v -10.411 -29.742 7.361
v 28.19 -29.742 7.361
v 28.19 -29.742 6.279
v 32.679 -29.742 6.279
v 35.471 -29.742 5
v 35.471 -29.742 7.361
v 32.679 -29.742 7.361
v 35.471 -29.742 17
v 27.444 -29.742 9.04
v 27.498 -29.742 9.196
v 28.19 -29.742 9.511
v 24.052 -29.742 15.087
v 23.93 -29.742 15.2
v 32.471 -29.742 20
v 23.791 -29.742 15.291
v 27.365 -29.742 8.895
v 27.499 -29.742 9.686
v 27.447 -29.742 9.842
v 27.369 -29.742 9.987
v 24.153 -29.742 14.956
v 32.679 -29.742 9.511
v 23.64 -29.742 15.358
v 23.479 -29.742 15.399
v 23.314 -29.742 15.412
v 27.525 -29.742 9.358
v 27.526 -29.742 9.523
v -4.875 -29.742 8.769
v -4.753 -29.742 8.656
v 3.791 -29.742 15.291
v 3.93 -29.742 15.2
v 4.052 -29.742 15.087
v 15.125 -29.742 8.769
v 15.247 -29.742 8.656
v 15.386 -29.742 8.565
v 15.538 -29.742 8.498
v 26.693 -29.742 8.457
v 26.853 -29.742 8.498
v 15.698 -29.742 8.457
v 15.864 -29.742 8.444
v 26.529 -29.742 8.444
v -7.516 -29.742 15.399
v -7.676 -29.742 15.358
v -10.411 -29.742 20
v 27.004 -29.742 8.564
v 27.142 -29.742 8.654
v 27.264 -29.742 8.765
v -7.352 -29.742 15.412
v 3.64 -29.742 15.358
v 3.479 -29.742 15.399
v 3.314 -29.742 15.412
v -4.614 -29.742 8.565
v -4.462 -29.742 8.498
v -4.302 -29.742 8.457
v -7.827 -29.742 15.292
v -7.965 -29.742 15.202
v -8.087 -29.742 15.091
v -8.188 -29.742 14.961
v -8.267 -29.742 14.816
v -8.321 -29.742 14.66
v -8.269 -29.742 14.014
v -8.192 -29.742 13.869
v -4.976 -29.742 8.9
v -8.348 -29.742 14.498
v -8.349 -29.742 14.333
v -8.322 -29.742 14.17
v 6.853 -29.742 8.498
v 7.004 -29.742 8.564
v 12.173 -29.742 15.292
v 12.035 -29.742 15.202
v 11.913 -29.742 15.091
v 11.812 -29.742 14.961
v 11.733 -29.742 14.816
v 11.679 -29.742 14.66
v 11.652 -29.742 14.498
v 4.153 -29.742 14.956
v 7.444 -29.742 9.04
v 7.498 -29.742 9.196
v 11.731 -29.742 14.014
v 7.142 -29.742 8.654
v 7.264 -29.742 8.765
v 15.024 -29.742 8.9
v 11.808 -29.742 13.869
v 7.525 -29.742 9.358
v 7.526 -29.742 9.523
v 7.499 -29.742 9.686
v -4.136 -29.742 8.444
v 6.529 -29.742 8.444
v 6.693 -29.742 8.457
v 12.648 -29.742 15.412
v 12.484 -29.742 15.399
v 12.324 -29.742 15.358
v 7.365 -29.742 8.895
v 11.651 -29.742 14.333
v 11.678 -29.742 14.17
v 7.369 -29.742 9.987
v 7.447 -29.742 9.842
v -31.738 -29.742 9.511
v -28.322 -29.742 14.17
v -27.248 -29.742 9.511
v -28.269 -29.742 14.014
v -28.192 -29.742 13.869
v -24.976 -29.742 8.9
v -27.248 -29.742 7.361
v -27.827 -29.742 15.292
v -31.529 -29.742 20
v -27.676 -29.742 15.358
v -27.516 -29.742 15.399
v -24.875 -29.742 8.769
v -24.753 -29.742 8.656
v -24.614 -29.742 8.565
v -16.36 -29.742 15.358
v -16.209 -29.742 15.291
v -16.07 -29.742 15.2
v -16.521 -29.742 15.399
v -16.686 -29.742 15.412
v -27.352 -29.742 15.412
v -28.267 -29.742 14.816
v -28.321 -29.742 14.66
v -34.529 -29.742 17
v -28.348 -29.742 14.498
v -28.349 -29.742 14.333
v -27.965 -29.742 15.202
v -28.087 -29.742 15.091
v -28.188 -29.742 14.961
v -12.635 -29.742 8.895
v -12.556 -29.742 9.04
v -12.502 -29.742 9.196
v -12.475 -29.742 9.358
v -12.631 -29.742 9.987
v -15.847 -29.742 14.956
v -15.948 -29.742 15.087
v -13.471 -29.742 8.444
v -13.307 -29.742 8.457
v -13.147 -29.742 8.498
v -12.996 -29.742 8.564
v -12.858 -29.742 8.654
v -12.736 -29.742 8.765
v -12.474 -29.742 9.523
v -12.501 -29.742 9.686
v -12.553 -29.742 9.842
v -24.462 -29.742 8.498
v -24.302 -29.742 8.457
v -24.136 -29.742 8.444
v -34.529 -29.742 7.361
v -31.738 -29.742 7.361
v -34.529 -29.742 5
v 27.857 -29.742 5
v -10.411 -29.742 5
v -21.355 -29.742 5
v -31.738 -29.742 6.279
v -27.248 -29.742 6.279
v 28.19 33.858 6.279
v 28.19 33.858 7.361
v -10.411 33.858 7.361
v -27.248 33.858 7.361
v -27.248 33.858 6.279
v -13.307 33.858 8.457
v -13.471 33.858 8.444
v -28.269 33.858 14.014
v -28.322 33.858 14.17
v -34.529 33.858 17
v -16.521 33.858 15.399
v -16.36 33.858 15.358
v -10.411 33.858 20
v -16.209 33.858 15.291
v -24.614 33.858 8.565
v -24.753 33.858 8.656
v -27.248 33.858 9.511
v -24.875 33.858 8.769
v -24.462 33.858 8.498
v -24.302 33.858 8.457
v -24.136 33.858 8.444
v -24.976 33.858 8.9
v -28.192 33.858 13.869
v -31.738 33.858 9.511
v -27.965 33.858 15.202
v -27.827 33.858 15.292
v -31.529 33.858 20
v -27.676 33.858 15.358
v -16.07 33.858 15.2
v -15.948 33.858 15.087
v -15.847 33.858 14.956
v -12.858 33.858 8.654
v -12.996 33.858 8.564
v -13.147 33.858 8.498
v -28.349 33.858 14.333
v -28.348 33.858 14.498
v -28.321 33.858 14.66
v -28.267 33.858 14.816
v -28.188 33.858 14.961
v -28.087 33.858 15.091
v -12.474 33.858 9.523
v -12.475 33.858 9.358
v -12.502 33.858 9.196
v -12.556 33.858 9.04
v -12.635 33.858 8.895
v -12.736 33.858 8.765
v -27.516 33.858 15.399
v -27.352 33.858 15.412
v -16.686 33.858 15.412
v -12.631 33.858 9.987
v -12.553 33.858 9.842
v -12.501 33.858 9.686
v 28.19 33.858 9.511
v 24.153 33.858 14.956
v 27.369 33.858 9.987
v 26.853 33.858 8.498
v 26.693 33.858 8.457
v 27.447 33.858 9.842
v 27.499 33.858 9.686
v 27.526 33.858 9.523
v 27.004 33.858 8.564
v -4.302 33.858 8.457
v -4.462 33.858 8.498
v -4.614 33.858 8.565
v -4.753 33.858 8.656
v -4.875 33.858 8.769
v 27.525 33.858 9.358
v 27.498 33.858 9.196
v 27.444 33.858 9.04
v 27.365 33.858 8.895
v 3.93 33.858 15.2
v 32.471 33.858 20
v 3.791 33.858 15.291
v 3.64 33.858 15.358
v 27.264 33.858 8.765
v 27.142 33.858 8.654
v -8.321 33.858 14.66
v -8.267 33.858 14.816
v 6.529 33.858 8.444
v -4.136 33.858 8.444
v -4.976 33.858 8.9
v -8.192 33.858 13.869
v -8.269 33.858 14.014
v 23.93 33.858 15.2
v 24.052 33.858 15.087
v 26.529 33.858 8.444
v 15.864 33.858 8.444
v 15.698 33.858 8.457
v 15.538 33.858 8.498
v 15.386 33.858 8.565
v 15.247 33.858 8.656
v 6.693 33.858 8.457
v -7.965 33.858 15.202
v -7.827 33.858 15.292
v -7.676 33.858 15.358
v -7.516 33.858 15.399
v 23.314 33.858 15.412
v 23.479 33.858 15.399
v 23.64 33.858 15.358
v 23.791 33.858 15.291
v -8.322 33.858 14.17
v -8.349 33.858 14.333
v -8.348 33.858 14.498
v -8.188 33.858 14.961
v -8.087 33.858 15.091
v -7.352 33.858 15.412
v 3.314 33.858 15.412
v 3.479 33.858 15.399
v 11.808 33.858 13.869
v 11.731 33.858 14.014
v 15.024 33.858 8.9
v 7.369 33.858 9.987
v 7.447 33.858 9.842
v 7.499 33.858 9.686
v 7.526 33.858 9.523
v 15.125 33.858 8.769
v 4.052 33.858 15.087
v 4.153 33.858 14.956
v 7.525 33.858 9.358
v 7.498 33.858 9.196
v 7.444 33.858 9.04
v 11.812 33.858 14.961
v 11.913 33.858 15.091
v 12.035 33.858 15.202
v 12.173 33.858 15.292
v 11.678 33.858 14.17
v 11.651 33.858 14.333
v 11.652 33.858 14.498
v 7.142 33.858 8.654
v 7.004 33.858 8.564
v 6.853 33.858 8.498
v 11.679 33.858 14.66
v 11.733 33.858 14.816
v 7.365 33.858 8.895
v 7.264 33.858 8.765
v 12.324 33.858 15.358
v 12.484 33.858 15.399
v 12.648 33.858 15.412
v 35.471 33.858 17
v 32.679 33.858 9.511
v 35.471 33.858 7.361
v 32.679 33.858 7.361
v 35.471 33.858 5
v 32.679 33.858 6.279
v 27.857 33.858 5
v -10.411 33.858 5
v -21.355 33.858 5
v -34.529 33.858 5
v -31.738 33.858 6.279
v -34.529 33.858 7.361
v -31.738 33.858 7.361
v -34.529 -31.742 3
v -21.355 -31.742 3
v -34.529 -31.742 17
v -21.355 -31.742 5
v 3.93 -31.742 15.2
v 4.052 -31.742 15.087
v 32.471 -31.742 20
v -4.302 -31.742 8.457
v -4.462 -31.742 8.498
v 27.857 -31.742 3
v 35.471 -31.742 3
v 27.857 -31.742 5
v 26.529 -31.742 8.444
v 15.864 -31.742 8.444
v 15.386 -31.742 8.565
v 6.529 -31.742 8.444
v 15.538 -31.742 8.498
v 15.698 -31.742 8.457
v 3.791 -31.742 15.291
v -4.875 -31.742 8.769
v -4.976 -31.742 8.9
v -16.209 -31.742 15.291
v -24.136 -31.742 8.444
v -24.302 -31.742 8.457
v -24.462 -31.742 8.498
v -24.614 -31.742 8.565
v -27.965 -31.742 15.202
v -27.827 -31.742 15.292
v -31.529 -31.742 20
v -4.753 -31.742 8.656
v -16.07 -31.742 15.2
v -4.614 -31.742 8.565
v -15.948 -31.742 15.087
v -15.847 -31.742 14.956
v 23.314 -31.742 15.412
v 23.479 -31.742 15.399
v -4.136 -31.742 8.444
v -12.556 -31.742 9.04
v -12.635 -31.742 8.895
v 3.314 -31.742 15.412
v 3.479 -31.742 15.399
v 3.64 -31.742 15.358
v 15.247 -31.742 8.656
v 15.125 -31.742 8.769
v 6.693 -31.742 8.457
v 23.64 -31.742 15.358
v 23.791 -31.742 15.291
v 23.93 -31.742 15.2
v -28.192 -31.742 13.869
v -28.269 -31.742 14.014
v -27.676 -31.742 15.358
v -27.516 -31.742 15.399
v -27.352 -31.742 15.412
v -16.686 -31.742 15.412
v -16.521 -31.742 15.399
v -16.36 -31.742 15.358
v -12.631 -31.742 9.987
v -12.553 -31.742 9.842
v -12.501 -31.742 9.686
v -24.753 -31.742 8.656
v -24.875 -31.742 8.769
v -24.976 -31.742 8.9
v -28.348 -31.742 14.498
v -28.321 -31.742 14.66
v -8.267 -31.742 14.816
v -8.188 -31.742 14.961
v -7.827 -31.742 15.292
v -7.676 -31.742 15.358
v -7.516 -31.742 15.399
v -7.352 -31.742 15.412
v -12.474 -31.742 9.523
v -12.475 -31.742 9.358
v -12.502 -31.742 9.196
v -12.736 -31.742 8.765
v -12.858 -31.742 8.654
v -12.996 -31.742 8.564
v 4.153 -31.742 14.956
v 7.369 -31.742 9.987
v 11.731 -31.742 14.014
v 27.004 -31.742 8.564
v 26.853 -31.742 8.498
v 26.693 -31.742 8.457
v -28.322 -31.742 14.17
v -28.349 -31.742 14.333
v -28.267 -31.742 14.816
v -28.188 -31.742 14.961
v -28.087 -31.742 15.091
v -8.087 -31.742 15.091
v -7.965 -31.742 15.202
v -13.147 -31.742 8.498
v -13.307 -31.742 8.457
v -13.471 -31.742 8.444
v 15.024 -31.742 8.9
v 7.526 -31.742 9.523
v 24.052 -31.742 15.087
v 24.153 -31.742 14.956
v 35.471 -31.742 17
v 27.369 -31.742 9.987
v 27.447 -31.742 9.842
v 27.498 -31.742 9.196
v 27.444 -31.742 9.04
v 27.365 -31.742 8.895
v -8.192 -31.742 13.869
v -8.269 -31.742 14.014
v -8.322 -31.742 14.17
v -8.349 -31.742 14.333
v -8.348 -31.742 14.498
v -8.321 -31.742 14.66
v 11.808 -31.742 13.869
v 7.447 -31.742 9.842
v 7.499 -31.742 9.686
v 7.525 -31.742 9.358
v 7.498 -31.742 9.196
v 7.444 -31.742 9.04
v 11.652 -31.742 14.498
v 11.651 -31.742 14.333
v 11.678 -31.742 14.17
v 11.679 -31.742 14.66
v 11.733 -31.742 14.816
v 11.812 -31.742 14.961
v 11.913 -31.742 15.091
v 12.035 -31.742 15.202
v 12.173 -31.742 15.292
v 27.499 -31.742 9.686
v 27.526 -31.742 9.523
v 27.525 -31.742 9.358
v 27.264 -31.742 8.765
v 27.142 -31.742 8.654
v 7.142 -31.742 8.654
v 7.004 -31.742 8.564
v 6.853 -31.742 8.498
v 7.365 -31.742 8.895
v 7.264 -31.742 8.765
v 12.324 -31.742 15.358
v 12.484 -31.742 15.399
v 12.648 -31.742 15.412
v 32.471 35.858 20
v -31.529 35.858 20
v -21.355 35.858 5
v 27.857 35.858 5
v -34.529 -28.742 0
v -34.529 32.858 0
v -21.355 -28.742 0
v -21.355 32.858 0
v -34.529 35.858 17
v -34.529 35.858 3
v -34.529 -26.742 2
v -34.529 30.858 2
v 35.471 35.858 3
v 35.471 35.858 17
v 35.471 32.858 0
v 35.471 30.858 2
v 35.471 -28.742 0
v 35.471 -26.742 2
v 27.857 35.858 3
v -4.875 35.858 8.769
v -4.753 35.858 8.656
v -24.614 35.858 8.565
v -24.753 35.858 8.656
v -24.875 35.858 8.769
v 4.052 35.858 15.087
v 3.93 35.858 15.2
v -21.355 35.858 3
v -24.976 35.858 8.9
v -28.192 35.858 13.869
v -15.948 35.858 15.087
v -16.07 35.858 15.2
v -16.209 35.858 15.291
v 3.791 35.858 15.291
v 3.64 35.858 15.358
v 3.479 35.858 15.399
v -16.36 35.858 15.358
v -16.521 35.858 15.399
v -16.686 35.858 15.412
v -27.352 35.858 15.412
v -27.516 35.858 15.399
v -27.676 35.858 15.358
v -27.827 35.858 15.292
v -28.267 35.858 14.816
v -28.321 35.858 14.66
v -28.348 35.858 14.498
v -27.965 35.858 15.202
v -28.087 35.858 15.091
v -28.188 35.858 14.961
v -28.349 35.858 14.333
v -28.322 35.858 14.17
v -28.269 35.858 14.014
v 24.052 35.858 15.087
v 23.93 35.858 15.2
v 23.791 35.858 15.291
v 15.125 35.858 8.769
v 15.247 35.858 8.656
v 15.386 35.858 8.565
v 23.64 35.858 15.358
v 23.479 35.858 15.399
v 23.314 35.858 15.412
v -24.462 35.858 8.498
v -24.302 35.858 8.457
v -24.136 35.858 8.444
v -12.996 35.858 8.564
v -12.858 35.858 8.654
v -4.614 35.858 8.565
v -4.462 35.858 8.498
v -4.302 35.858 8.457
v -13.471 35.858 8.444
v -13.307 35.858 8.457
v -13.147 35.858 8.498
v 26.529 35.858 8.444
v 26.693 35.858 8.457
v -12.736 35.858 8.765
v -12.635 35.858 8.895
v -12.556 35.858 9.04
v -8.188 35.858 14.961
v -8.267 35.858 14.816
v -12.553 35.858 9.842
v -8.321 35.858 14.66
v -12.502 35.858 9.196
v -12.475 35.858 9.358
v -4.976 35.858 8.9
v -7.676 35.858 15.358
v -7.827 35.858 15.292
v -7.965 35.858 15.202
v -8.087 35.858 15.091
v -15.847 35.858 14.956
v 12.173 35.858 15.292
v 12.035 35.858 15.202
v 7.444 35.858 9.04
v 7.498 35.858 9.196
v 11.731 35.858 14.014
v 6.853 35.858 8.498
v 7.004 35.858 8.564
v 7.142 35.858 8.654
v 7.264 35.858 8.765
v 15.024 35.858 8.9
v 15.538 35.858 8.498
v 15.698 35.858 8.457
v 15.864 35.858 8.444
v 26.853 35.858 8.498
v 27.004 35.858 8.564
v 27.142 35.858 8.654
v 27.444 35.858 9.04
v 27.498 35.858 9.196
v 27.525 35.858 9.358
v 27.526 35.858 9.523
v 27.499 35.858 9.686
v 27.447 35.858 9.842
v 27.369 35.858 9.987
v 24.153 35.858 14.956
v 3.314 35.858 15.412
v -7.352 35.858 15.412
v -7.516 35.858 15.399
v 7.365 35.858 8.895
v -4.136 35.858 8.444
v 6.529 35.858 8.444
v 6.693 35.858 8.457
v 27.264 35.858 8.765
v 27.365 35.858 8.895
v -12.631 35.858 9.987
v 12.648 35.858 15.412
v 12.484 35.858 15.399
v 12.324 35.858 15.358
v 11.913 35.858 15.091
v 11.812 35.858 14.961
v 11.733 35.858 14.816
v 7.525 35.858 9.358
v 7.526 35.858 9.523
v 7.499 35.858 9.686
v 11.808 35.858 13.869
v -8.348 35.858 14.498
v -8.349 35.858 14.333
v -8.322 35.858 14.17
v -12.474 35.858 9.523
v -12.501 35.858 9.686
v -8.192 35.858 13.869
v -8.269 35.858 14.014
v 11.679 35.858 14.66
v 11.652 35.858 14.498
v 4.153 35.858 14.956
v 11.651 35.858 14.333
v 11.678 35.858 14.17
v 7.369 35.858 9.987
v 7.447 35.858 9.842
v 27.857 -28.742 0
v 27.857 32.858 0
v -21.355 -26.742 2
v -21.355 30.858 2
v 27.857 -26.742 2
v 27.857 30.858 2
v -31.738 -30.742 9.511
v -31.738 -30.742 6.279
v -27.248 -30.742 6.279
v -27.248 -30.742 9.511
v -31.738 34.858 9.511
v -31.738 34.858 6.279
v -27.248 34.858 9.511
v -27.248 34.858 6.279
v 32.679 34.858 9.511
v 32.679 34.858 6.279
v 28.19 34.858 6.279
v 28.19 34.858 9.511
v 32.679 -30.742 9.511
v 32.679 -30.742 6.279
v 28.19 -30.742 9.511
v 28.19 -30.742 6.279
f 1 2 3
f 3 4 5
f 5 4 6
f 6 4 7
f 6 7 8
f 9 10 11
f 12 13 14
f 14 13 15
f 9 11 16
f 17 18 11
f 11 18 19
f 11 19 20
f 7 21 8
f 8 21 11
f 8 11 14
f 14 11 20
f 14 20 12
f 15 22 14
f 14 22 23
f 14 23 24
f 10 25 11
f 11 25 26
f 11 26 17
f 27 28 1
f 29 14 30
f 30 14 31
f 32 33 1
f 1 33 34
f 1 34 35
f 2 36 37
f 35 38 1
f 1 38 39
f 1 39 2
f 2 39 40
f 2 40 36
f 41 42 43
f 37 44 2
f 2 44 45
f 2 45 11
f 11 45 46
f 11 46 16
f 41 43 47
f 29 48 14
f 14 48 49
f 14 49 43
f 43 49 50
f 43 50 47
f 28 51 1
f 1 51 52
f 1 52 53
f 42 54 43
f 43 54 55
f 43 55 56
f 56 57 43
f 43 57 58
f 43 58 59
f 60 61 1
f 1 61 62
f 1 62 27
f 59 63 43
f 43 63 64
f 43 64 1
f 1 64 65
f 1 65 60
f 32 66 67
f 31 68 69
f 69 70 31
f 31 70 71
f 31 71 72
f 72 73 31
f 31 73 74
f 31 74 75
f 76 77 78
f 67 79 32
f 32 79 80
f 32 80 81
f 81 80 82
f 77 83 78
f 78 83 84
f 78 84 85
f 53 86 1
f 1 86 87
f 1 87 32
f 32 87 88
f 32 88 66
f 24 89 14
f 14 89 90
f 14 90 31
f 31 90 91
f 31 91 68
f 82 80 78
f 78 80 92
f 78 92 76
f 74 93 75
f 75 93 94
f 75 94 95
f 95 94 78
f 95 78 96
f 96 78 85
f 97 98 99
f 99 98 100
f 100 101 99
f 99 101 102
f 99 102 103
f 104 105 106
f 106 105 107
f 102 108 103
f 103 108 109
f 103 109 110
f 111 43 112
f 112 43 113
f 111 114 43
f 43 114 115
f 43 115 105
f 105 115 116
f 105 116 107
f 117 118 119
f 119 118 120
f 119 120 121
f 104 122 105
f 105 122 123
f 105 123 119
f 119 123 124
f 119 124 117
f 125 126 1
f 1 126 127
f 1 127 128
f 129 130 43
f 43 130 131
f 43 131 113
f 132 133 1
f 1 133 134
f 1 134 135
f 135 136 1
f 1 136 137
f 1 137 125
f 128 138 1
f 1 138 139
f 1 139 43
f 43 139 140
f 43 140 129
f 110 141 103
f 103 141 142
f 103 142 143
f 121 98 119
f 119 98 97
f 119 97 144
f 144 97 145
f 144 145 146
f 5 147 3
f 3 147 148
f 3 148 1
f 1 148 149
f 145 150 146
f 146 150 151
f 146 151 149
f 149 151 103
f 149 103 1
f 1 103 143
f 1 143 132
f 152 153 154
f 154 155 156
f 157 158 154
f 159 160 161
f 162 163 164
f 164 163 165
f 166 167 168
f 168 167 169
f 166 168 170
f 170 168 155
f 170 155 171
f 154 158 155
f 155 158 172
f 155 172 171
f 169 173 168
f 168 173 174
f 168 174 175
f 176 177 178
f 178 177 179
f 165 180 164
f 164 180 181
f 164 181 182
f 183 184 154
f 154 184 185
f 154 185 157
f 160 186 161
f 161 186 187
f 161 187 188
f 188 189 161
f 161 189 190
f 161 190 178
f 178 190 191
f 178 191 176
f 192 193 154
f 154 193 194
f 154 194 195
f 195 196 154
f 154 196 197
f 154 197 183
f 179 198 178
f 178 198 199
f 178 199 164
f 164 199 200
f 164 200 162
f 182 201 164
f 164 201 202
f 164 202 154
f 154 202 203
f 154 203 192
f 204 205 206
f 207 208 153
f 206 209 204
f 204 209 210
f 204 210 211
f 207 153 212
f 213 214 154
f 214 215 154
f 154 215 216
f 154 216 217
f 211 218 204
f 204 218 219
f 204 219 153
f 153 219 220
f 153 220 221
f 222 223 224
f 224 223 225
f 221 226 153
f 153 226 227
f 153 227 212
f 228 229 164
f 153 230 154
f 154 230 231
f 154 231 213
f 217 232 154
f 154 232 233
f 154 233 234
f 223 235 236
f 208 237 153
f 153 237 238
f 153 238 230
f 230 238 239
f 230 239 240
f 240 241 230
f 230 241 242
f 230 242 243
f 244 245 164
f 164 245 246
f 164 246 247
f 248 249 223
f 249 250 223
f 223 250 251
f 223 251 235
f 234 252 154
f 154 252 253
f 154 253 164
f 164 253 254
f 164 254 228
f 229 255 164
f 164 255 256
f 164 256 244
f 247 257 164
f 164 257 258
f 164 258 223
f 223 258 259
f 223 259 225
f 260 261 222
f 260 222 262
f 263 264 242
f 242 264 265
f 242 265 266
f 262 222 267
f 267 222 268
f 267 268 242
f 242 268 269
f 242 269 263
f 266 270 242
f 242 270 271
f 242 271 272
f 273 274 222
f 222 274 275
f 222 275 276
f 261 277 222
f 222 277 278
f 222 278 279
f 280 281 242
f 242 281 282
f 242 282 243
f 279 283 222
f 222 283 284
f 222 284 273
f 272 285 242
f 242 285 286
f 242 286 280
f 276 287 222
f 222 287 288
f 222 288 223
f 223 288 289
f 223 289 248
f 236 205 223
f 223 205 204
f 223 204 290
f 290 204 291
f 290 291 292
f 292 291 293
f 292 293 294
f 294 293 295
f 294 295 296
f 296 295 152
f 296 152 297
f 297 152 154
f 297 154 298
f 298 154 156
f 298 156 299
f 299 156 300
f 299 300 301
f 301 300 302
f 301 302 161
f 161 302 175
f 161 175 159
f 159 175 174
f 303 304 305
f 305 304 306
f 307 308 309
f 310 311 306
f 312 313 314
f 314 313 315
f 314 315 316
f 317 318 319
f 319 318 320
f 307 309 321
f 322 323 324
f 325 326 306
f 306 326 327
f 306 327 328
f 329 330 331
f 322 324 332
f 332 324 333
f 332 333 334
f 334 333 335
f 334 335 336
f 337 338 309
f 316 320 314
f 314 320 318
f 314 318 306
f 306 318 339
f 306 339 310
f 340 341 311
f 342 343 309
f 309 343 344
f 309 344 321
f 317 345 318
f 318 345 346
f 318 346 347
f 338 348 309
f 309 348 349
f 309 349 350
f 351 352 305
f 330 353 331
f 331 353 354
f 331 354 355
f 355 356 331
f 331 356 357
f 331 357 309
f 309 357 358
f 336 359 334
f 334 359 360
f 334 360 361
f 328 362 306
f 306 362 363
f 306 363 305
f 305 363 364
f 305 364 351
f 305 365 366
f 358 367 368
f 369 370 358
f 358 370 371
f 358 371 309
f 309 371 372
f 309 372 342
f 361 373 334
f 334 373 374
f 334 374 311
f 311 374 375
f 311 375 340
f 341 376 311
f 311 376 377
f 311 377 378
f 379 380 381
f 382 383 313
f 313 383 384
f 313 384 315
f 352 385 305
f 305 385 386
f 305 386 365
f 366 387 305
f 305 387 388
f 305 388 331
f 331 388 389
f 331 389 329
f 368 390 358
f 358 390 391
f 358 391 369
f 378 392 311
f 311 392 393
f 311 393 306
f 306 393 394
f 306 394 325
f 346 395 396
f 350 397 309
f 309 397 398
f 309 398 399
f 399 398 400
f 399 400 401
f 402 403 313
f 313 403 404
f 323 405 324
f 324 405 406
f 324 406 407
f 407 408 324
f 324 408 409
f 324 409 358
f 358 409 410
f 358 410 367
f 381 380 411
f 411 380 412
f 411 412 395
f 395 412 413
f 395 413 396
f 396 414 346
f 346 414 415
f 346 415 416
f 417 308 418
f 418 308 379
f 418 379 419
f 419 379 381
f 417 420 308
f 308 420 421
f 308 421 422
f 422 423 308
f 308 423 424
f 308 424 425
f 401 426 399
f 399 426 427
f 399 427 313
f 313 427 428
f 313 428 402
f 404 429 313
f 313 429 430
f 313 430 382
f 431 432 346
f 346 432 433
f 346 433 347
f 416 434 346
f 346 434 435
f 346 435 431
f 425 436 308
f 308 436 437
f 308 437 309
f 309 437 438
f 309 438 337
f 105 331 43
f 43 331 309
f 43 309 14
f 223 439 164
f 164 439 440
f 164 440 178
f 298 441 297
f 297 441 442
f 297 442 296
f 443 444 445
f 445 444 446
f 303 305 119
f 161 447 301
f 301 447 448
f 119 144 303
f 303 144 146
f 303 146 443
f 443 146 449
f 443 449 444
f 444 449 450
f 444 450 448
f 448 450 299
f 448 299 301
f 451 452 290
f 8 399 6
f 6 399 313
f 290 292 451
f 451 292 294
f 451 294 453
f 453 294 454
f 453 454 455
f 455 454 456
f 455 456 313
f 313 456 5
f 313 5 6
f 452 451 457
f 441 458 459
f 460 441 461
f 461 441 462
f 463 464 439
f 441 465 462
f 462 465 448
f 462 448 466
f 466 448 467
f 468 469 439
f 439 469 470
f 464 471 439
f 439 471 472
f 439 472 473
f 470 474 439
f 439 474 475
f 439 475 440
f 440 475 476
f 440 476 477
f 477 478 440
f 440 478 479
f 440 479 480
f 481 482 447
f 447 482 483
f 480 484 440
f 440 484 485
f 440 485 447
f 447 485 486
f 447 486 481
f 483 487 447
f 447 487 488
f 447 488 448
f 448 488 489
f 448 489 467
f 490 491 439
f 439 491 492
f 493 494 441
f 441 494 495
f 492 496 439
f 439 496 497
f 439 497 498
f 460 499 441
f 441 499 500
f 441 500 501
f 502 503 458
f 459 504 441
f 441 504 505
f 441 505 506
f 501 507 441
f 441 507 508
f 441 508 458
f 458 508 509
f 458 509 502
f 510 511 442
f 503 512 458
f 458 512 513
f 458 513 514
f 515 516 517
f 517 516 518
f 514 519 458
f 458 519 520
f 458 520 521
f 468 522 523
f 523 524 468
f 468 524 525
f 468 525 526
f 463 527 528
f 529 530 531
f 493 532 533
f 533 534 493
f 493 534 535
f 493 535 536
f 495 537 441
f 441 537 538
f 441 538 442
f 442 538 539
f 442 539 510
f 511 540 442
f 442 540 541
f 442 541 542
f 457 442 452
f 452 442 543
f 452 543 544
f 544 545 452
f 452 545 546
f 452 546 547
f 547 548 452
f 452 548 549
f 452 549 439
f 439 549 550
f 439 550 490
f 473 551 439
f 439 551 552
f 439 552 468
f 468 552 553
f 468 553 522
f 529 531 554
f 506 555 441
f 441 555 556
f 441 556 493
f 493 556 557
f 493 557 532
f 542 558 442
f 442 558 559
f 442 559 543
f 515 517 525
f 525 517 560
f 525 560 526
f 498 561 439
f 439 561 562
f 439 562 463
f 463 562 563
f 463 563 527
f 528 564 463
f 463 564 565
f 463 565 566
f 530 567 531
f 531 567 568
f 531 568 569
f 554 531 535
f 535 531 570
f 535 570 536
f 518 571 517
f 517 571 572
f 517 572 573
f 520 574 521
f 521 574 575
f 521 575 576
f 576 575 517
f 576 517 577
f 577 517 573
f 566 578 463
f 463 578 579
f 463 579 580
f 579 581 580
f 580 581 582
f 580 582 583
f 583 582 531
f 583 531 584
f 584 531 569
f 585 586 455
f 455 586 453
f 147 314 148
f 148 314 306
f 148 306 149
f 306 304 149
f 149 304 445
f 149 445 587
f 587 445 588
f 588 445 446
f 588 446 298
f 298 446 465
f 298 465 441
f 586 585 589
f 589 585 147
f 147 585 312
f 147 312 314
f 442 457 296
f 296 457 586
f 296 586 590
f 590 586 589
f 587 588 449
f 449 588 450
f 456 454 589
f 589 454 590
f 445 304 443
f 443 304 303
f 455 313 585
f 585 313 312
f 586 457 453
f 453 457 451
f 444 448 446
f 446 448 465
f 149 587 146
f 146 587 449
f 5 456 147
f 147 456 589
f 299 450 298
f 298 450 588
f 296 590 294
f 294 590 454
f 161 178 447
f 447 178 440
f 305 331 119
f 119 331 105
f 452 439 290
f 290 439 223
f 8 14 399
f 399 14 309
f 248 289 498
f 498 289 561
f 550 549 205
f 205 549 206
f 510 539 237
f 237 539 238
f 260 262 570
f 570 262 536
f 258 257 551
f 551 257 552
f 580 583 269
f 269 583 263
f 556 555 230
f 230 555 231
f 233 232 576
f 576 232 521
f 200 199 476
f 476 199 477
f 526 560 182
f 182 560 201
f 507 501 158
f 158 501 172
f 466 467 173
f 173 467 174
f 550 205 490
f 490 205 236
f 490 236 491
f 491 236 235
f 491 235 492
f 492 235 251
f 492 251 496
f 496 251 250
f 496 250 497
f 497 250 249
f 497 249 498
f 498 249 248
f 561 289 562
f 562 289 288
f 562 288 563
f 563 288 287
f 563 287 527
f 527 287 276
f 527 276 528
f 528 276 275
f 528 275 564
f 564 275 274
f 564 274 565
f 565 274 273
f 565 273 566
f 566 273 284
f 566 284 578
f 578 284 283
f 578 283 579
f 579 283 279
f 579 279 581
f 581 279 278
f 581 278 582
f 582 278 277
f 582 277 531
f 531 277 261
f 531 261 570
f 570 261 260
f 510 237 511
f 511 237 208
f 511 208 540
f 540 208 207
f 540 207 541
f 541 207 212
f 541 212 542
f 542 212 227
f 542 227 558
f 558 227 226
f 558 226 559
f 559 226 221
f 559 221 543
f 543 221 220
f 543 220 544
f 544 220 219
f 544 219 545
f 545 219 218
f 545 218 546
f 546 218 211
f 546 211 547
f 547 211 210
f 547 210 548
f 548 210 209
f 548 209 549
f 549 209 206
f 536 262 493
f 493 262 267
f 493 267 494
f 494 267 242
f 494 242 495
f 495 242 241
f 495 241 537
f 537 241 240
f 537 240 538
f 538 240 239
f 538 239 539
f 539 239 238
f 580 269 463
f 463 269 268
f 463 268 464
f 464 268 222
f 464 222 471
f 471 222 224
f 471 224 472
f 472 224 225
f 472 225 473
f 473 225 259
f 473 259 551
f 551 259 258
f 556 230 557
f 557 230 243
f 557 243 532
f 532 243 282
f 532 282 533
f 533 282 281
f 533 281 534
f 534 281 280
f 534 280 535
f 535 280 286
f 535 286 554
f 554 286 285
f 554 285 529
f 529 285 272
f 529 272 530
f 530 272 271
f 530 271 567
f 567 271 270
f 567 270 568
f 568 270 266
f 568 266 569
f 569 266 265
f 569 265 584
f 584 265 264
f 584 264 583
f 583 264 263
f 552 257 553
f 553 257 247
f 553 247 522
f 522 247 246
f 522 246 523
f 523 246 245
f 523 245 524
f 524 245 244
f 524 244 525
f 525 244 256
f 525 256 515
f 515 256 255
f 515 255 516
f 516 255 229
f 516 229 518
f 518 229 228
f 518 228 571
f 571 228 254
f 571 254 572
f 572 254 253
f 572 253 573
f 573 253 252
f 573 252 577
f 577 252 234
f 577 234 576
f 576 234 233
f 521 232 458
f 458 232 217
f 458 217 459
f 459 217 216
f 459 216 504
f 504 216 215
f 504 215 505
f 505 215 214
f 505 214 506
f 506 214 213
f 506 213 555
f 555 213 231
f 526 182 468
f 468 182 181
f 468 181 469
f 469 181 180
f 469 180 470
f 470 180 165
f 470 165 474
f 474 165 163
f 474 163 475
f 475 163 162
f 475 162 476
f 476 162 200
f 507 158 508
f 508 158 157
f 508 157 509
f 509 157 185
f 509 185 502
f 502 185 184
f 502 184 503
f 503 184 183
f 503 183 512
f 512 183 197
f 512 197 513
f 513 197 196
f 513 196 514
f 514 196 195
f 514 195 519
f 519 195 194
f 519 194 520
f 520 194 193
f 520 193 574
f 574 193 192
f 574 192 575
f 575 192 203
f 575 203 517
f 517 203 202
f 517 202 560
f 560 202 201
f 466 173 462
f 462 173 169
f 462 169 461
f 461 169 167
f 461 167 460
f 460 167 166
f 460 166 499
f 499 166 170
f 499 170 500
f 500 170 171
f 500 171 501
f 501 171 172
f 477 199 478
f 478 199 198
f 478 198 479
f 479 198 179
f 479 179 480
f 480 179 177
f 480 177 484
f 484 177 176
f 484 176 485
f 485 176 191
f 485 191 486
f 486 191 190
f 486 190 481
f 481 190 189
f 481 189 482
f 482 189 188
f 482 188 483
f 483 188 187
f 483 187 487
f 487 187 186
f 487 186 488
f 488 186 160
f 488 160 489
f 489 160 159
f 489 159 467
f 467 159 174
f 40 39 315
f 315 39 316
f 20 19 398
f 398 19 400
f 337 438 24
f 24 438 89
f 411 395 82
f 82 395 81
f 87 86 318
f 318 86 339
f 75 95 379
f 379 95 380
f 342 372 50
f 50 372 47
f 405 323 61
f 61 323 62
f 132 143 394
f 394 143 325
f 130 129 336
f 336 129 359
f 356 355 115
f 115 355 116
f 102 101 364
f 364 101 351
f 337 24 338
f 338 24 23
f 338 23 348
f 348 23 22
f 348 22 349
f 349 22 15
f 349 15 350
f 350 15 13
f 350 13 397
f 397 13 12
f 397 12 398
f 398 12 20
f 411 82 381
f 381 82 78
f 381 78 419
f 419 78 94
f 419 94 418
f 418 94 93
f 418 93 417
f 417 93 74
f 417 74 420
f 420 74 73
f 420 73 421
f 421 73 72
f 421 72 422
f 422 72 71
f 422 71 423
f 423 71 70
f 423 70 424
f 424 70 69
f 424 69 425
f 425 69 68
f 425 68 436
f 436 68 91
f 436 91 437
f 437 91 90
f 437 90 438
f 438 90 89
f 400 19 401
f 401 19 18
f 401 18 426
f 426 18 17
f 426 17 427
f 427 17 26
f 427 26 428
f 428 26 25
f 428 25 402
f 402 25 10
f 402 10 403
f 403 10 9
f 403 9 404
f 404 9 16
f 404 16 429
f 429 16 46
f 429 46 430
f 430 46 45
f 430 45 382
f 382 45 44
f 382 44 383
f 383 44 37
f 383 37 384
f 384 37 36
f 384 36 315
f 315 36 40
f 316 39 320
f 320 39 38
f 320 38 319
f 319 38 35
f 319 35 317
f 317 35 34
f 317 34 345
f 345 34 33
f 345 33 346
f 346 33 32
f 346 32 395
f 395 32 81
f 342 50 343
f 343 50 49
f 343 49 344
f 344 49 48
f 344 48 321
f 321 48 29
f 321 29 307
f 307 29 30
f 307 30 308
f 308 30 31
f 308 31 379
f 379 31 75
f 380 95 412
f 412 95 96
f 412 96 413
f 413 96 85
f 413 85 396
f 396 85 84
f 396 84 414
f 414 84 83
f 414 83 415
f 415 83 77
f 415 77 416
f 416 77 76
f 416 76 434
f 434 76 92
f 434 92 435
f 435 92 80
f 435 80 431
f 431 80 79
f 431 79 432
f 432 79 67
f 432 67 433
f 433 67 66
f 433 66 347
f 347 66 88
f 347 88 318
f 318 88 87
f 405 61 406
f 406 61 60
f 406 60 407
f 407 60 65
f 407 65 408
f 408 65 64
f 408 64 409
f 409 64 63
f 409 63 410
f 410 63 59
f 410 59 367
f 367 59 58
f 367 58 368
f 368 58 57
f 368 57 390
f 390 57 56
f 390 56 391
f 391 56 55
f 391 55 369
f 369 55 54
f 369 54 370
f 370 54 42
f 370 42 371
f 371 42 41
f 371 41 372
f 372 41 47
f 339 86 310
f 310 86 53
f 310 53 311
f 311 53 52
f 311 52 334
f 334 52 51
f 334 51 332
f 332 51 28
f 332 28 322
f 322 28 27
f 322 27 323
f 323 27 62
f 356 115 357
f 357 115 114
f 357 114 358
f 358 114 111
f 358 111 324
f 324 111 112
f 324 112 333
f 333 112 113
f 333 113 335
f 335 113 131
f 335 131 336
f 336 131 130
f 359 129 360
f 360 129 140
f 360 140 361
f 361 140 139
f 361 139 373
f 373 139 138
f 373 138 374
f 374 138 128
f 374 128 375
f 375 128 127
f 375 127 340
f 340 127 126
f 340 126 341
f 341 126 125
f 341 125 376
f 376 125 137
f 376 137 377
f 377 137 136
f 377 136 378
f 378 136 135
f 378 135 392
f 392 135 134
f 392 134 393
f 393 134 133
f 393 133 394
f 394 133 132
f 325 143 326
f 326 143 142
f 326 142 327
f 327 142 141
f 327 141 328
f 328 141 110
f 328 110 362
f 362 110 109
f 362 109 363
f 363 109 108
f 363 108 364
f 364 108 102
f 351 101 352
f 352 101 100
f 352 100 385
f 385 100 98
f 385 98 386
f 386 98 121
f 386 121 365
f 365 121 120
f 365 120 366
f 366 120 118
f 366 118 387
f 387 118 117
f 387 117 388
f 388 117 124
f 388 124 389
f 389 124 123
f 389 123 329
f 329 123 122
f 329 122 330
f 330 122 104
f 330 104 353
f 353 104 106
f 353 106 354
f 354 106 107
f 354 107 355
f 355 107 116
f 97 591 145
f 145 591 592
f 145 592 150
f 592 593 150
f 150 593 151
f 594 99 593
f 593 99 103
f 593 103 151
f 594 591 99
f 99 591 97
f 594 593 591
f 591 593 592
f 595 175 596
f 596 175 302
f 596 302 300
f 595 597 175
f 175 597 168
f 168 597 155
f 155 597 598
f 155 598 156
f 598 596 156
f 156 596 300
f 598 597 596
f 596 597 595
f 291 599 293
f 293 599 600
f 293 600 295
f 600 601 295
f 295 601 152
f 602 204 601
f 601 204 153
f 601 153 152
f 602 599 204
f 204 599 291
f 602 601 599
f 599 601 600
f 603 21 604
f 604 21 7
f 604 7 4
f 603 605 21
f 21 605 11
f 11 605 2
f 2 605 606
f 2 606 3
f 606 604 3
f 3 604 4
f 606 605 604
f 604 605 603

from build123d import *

# Parameters (mm, degrees)
SKETCH2_W               = 70
SKETCH2_H               = 67.6
BOSS_EXTRUDE2_DEPTH     = 20
SKETCH3_W               = 49.211808989
SKETCH3_H               = 73.758147992
CUT_EXTRUDE1_DEPTH      = 5
SHELL1_T                = -2
CHAMFER1_SIZE           = 3
CHAMFER2_SIZE           = 3
CUT_EXTRUDE2_REACH      = 80.917
FILLET1_R               = 1
FILLET1_OF_MIRROR1_R    = 1
SKETCH6_W               = 4.489342342
SKETCH6_H               = 3.232194467
CUT_EXTRUDE3_DEPTH      = 1
MIRROR3_COPY_1_SKETCH_W = 4.489342342
MIRROR3_COPY_1_SKETCH_H = 3.232194467
MIRROR3_COPY_1_DEPTH    = 1


with BuildPart() as part:
    # Sketch2 → Boss-Extrude2 (new body)
    with BuildSketch(Plane.XY):
        with Locations((0.470659816, 2.057998975)):
            Rectangle(SKETCH2_W, SKETCH2_H)
    extrude(amount=BOSS_EXTRUDE2_DEPTH)

    # Sketch3 → Cut-Extrude1 (cut)
    with BuildSketch(Plane(origin=(0, 0, 0), x_dir=(-1, 0, 0), z_dir=(0, 0, -1))):
        with Locations((-3.250634913, 2.948650711)):
            Rectangle(SKETCH3_W, SKETCH3_H)
    extrude(amount=-CUT_EXTRUDE1_DEPTH, mode=Mode.SUBTRACT)

    # Shell1
    shell1_openings = [part.faces().sort_by_distance(p)[0] for p in [
        (0.470659816, 2.057998975, 20),
        (3.250634912, 2.057998975, 5),
        (-21.355269582, 2.057998975, 2.5),
        (27.856539407, 2.057998975, 2.5),
        (35.470659816, 2.057998975, 10),
        (-34.529340184, 2.057998975, 10),
    ]]
    offset(amount=SHELL1_T, openings=shell1_openings, kind=Kind.INTERSECTION)

    # Chamfer1
    chamfer1_edges = [part.edges().sort_by_distance(p)[0] for p in [
        (-27.942304883, -29.742001025, 2),
        (31.663599611, -29.742001025, 2),
        (-27.942304883, 33.857998975, 2),
        (31.663599611, 33.857998975, 2),
        (-27.942304883, -31.742001025, 0),
        (31.663599611, -31.742001025, 0),
        (31.663599611, 35.857998975, 0),
        (-27.942304883, 35.857998975, 0),
    ]]
    chamfer(chamfer1_edges, length=CHAMFER1_SIZE)

    # Chamfer2
    chamfer2_edges = [part.edges().sort_by_distance(p)[0] for p in [
        (35.470659816, -30.742001025, 20),
        (-34.529340184, -30.742001025, 20),
        (35.470659816, 34.857998975, 20),
        (-34.529340184, 34.857998975, 20),
    ]]
    chamfer(chamfer2_edges, length=CHAMFER2_SIZE)

    # Sketch5 → Cut-Extrude2 (cut, up to next)
    with BuildSketch(Plane(origin=(0, 35.857998975, 0), x_dir=(1, 0, 0), z_dir=(0, 1, 0)), mode=Mode.PRIVATE) as cut_extrude2_sk1:
        Polygon((-29.190337507, -15.412371153), (-16.14250414, -15.412371153), (-11.632506267, -8.443693022), (-24.680339633, -8.443693022), align=None)
    cut_extrude2_tool1 = extrude(cut_extrude2_sk1.sketch, amount=-CUT_EXTRUDE2_REACH, mode=Mode.PRIVATE) & part.part
    # Sketch5 → Cut-Extrude2 (cut, up to next)
    with BuildSketch(Plane(origin=(0, 35.857998975, 0), x_dir=(1, 0, 0), z_dir=(0, 1, 0)), mode=Mode.PRIVATE) as cut_extrude2_sk2:
        Polygon((-9.190337507, -15.412371153), (3.85749586, -15.412371153), (8.367493733, -8.443693022), (-4.680339633, -8.443693022), align=None)
    cut_extrude2_tool2 = extrude(cut_extrude2_sk2.sketch, amount=-CUT_EXTRUDE2_REACH, mode=Mode.PRIVATE) & part.part
    # Sketch5 → Cut-Extrude2 (cut, up to next)
    with BuildSketch(Plane(origin=(0, 35.857998975, 0), x_dir=(1, 0, 0), z_dir=(0, 1, 0)), mode=Mode.PRIVATE) as cut_extrude2_sk3:
        Polygon((10.809662493, -15.412371153), (23.85749586, -15.412371153), (28.367493733, -8.443693022), (15.319660367, -8.443693022), align=None)
    cut_extrude2_tool3 = extrude(cut_extrude2_sk3.sketch, amount=-CUT_EXTRUDE2_REACH, mode=Mode.PRIVATE) & part.part
    cut_extrude2_1 = cut_extrude2_tool1.solids().sort_by_distance((-20.411422, 35.857999, 11.928032))[0]
    add(cut_extrude2_1, mode=Mode.SUBTRACT)
    cut_extrude2_2 = cut_extrude2_tool2.solids().sort_by_distance((-0.411422, 35.857999, 11.928032))[0]
    add(cut_extrude2_2, mode=Mode.SUBTRACT)
    cut_extrude2_3 = cut_extrude2_tool3.solids().sort_by_distance((19.588578, 35.857999, 11.928032))[0]
    add(cut_extrude2_3, mode=Mode.SUBTRACT)
    cut_extrude2 = cut_extrude2_1 + cut_extrude2_2 + cut_extrude2_3  # Cut-Extrude2 as one shape, for the pattern or mirror that repeats it

    # Fillet1
    fillet1_edges = [part.edges().sort_by_distance(p)[0] for p in [
        (-16.14250414, 34.857998975, 15.412371153),
        (-11.632506267, 34.857998975, 8.443693022),
        (-24.680339633, 34.857998975, 8.443693022),
        (-29.190337507, 34.857998975, 15.412371153),
        (3.85749586, 34.857998975, 15.412371153),
        (8.367493733, 34.857998975, 8.443693022),
        (-4.680339633, 34.857998975, 8.443693022),
        (-9.190337507, 34.857998975, 15.412371153),
        (23.85749586, 34.857998975, 15.412371153),
        (28.367493733, 34.857998975, 8.443693022),
        (15.319660367, 34.857998975, 8.443693022),
        (10.809662493, 34.857998975, 15.412371153),
    ]]
    fillet(fillet1_edges, radius=FILLET1_R)

    # Mirror1: Cut-Extrude2 across plane
    add(cut_extrude2.mirror(Plane.ZX.offset(2.057998975)), mode=Mode.SUBTRACT)

    # Fillet1 of Mirror1
    fillet1_of_mirror1_edges = [part.edges().sort_by_distance(p)[0] for p in [
        (-16.14250414, -30.742001025, 15.412371153),
        (-11.632506267, -30.742001025, 8.443693022),
        (-24.680339633, -30.742001025, 8.443693022),
        (-29.190337507, -30.742001025, 15.412371153),
        (3.85749586, -30.742001025, 15.412371153),
        (8.367493733, -30.742001025, 8.443693022),
        (-4.680339633, -30.742001025, 8.443693022),
        (-9.190337507, -30.742001025, 15.412371153),
        (23.85749586, -30.742001025, 15.412371153),
        (28.367493733, -30.742001025, 8.443693022),
        (15.319660367, -30.742001025, 8.443693022),
        (10.809662493, -30.742001025, 15.412371153),
    ]]
    fillet(fillet1_of_mirror1_edges, radius=FILLET1_OF_MIRROR1_R)

    # Sketch6 → Cut-Extrude3 (cut)
    with BuildSketch(Plane(origin=(0, -29.742001025, 0), x_dir=(1, 0, 0), z_dir=(0, 1, 0))):
        with Locations((-29.492893563, -7.894775984)):
            Rectangle(SKETCH6_W, SKETCH6_H)
    cut_extrude3 = extrude(amount=-CUT_EXTRUDE3_DEPTH, mode=Mode.SUBTRACT)

    # Mirror2: Cut-Extrude3 across plane
    add(cut_extrude3.mirror(Plane.ZX.offset(2.057998975)), mode=Mode.SUBTRACT)

    # Mirror3: Cut-Extrude3 across plane
    add(cut_extrude3.mirror(Plane(origin=(0.470659816, 0, 0), x_dir=(0, 0, 1), z_dir=(1, 0, 0))), mode=Mode.SUBTRACT)

    # Mirror3 copy 1 sketch → Mirror3 copy 1 (cut)
    with BuildSketch(Plane(origin=(0.941319632, 33.857998975, 0), x_dir=(-1, 0, 0), z_dir=(0, -1, 0))):
        with Locations((-29.492893563, -7.894775984)):
            Rectangle(MIRROR3_COPY_1_SKETCH_W, MIRROR3_COPY_1_SKETCH_H)
    extrude(amount=-MIRROR3_COPY_1_DEPTH, mode=Mode.SUBTRACT)


solid = part.part
